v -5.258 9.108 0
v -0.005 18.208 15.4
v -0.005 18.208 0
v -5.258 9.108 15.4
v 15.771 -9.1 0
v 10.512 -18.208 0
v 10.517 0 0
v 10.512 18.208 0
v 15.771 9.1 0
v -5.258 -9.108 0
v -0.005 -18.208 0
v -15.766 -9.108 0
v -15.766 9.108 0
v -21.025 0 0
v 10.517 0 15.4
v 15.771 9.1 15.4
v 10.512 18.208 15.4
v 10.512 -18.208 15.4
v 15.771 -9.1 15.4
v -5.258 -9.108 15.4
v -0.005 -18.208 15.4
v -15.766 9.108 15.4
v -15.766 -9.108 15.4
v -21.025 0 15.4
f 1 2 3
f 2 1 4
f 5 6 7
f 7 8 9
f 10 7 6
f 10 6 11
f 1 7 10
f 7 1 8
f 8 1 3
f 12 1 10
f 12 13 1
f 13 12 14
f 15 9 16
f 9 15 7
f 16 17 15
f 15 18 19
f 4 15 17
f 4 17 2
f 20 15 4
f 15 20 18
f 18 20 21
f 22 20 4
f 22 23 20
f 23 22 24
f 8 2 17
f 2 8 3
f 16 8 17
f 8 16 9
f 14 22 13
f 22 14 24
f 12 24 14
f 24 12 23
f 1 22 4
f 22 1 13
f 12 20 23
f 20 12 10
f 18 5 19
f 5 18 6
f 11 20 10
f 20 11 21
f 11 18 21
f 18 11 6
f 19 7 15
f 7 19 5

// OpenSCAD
// file: dimensions.scad
measureX = 9.10; // 92/2/2/sqrt(19)*sqrt(3)
measureY = 9.10; 
measureZ = 7.7; // 54/7 is about 7.7

halfSide = 1*tan(30);
h1 = 1;
dd = 0.001;
// main file
include <dimensions.scad>

hh = [2,2,2];

scale([measureX,measureY,measureZ])  union() {
    translate([halfSide,1,0]) 
    linear_extrude(height = hh[0]*h1, center = false)
    circle(2*halfSide + dd,$fn=6);
    
    translate([-2*halfSide,0,0]) 
    linear_extrude(height = hh[1]*h1, center = false)
    circle(2*halfSide + dd,$fn=6);
    
    translate([halfSide,-1,0]) 
    linear_extrude(height = hh[2]*h1, center = false)
    circle(2*halfSide + dd,$fn=6);
}
